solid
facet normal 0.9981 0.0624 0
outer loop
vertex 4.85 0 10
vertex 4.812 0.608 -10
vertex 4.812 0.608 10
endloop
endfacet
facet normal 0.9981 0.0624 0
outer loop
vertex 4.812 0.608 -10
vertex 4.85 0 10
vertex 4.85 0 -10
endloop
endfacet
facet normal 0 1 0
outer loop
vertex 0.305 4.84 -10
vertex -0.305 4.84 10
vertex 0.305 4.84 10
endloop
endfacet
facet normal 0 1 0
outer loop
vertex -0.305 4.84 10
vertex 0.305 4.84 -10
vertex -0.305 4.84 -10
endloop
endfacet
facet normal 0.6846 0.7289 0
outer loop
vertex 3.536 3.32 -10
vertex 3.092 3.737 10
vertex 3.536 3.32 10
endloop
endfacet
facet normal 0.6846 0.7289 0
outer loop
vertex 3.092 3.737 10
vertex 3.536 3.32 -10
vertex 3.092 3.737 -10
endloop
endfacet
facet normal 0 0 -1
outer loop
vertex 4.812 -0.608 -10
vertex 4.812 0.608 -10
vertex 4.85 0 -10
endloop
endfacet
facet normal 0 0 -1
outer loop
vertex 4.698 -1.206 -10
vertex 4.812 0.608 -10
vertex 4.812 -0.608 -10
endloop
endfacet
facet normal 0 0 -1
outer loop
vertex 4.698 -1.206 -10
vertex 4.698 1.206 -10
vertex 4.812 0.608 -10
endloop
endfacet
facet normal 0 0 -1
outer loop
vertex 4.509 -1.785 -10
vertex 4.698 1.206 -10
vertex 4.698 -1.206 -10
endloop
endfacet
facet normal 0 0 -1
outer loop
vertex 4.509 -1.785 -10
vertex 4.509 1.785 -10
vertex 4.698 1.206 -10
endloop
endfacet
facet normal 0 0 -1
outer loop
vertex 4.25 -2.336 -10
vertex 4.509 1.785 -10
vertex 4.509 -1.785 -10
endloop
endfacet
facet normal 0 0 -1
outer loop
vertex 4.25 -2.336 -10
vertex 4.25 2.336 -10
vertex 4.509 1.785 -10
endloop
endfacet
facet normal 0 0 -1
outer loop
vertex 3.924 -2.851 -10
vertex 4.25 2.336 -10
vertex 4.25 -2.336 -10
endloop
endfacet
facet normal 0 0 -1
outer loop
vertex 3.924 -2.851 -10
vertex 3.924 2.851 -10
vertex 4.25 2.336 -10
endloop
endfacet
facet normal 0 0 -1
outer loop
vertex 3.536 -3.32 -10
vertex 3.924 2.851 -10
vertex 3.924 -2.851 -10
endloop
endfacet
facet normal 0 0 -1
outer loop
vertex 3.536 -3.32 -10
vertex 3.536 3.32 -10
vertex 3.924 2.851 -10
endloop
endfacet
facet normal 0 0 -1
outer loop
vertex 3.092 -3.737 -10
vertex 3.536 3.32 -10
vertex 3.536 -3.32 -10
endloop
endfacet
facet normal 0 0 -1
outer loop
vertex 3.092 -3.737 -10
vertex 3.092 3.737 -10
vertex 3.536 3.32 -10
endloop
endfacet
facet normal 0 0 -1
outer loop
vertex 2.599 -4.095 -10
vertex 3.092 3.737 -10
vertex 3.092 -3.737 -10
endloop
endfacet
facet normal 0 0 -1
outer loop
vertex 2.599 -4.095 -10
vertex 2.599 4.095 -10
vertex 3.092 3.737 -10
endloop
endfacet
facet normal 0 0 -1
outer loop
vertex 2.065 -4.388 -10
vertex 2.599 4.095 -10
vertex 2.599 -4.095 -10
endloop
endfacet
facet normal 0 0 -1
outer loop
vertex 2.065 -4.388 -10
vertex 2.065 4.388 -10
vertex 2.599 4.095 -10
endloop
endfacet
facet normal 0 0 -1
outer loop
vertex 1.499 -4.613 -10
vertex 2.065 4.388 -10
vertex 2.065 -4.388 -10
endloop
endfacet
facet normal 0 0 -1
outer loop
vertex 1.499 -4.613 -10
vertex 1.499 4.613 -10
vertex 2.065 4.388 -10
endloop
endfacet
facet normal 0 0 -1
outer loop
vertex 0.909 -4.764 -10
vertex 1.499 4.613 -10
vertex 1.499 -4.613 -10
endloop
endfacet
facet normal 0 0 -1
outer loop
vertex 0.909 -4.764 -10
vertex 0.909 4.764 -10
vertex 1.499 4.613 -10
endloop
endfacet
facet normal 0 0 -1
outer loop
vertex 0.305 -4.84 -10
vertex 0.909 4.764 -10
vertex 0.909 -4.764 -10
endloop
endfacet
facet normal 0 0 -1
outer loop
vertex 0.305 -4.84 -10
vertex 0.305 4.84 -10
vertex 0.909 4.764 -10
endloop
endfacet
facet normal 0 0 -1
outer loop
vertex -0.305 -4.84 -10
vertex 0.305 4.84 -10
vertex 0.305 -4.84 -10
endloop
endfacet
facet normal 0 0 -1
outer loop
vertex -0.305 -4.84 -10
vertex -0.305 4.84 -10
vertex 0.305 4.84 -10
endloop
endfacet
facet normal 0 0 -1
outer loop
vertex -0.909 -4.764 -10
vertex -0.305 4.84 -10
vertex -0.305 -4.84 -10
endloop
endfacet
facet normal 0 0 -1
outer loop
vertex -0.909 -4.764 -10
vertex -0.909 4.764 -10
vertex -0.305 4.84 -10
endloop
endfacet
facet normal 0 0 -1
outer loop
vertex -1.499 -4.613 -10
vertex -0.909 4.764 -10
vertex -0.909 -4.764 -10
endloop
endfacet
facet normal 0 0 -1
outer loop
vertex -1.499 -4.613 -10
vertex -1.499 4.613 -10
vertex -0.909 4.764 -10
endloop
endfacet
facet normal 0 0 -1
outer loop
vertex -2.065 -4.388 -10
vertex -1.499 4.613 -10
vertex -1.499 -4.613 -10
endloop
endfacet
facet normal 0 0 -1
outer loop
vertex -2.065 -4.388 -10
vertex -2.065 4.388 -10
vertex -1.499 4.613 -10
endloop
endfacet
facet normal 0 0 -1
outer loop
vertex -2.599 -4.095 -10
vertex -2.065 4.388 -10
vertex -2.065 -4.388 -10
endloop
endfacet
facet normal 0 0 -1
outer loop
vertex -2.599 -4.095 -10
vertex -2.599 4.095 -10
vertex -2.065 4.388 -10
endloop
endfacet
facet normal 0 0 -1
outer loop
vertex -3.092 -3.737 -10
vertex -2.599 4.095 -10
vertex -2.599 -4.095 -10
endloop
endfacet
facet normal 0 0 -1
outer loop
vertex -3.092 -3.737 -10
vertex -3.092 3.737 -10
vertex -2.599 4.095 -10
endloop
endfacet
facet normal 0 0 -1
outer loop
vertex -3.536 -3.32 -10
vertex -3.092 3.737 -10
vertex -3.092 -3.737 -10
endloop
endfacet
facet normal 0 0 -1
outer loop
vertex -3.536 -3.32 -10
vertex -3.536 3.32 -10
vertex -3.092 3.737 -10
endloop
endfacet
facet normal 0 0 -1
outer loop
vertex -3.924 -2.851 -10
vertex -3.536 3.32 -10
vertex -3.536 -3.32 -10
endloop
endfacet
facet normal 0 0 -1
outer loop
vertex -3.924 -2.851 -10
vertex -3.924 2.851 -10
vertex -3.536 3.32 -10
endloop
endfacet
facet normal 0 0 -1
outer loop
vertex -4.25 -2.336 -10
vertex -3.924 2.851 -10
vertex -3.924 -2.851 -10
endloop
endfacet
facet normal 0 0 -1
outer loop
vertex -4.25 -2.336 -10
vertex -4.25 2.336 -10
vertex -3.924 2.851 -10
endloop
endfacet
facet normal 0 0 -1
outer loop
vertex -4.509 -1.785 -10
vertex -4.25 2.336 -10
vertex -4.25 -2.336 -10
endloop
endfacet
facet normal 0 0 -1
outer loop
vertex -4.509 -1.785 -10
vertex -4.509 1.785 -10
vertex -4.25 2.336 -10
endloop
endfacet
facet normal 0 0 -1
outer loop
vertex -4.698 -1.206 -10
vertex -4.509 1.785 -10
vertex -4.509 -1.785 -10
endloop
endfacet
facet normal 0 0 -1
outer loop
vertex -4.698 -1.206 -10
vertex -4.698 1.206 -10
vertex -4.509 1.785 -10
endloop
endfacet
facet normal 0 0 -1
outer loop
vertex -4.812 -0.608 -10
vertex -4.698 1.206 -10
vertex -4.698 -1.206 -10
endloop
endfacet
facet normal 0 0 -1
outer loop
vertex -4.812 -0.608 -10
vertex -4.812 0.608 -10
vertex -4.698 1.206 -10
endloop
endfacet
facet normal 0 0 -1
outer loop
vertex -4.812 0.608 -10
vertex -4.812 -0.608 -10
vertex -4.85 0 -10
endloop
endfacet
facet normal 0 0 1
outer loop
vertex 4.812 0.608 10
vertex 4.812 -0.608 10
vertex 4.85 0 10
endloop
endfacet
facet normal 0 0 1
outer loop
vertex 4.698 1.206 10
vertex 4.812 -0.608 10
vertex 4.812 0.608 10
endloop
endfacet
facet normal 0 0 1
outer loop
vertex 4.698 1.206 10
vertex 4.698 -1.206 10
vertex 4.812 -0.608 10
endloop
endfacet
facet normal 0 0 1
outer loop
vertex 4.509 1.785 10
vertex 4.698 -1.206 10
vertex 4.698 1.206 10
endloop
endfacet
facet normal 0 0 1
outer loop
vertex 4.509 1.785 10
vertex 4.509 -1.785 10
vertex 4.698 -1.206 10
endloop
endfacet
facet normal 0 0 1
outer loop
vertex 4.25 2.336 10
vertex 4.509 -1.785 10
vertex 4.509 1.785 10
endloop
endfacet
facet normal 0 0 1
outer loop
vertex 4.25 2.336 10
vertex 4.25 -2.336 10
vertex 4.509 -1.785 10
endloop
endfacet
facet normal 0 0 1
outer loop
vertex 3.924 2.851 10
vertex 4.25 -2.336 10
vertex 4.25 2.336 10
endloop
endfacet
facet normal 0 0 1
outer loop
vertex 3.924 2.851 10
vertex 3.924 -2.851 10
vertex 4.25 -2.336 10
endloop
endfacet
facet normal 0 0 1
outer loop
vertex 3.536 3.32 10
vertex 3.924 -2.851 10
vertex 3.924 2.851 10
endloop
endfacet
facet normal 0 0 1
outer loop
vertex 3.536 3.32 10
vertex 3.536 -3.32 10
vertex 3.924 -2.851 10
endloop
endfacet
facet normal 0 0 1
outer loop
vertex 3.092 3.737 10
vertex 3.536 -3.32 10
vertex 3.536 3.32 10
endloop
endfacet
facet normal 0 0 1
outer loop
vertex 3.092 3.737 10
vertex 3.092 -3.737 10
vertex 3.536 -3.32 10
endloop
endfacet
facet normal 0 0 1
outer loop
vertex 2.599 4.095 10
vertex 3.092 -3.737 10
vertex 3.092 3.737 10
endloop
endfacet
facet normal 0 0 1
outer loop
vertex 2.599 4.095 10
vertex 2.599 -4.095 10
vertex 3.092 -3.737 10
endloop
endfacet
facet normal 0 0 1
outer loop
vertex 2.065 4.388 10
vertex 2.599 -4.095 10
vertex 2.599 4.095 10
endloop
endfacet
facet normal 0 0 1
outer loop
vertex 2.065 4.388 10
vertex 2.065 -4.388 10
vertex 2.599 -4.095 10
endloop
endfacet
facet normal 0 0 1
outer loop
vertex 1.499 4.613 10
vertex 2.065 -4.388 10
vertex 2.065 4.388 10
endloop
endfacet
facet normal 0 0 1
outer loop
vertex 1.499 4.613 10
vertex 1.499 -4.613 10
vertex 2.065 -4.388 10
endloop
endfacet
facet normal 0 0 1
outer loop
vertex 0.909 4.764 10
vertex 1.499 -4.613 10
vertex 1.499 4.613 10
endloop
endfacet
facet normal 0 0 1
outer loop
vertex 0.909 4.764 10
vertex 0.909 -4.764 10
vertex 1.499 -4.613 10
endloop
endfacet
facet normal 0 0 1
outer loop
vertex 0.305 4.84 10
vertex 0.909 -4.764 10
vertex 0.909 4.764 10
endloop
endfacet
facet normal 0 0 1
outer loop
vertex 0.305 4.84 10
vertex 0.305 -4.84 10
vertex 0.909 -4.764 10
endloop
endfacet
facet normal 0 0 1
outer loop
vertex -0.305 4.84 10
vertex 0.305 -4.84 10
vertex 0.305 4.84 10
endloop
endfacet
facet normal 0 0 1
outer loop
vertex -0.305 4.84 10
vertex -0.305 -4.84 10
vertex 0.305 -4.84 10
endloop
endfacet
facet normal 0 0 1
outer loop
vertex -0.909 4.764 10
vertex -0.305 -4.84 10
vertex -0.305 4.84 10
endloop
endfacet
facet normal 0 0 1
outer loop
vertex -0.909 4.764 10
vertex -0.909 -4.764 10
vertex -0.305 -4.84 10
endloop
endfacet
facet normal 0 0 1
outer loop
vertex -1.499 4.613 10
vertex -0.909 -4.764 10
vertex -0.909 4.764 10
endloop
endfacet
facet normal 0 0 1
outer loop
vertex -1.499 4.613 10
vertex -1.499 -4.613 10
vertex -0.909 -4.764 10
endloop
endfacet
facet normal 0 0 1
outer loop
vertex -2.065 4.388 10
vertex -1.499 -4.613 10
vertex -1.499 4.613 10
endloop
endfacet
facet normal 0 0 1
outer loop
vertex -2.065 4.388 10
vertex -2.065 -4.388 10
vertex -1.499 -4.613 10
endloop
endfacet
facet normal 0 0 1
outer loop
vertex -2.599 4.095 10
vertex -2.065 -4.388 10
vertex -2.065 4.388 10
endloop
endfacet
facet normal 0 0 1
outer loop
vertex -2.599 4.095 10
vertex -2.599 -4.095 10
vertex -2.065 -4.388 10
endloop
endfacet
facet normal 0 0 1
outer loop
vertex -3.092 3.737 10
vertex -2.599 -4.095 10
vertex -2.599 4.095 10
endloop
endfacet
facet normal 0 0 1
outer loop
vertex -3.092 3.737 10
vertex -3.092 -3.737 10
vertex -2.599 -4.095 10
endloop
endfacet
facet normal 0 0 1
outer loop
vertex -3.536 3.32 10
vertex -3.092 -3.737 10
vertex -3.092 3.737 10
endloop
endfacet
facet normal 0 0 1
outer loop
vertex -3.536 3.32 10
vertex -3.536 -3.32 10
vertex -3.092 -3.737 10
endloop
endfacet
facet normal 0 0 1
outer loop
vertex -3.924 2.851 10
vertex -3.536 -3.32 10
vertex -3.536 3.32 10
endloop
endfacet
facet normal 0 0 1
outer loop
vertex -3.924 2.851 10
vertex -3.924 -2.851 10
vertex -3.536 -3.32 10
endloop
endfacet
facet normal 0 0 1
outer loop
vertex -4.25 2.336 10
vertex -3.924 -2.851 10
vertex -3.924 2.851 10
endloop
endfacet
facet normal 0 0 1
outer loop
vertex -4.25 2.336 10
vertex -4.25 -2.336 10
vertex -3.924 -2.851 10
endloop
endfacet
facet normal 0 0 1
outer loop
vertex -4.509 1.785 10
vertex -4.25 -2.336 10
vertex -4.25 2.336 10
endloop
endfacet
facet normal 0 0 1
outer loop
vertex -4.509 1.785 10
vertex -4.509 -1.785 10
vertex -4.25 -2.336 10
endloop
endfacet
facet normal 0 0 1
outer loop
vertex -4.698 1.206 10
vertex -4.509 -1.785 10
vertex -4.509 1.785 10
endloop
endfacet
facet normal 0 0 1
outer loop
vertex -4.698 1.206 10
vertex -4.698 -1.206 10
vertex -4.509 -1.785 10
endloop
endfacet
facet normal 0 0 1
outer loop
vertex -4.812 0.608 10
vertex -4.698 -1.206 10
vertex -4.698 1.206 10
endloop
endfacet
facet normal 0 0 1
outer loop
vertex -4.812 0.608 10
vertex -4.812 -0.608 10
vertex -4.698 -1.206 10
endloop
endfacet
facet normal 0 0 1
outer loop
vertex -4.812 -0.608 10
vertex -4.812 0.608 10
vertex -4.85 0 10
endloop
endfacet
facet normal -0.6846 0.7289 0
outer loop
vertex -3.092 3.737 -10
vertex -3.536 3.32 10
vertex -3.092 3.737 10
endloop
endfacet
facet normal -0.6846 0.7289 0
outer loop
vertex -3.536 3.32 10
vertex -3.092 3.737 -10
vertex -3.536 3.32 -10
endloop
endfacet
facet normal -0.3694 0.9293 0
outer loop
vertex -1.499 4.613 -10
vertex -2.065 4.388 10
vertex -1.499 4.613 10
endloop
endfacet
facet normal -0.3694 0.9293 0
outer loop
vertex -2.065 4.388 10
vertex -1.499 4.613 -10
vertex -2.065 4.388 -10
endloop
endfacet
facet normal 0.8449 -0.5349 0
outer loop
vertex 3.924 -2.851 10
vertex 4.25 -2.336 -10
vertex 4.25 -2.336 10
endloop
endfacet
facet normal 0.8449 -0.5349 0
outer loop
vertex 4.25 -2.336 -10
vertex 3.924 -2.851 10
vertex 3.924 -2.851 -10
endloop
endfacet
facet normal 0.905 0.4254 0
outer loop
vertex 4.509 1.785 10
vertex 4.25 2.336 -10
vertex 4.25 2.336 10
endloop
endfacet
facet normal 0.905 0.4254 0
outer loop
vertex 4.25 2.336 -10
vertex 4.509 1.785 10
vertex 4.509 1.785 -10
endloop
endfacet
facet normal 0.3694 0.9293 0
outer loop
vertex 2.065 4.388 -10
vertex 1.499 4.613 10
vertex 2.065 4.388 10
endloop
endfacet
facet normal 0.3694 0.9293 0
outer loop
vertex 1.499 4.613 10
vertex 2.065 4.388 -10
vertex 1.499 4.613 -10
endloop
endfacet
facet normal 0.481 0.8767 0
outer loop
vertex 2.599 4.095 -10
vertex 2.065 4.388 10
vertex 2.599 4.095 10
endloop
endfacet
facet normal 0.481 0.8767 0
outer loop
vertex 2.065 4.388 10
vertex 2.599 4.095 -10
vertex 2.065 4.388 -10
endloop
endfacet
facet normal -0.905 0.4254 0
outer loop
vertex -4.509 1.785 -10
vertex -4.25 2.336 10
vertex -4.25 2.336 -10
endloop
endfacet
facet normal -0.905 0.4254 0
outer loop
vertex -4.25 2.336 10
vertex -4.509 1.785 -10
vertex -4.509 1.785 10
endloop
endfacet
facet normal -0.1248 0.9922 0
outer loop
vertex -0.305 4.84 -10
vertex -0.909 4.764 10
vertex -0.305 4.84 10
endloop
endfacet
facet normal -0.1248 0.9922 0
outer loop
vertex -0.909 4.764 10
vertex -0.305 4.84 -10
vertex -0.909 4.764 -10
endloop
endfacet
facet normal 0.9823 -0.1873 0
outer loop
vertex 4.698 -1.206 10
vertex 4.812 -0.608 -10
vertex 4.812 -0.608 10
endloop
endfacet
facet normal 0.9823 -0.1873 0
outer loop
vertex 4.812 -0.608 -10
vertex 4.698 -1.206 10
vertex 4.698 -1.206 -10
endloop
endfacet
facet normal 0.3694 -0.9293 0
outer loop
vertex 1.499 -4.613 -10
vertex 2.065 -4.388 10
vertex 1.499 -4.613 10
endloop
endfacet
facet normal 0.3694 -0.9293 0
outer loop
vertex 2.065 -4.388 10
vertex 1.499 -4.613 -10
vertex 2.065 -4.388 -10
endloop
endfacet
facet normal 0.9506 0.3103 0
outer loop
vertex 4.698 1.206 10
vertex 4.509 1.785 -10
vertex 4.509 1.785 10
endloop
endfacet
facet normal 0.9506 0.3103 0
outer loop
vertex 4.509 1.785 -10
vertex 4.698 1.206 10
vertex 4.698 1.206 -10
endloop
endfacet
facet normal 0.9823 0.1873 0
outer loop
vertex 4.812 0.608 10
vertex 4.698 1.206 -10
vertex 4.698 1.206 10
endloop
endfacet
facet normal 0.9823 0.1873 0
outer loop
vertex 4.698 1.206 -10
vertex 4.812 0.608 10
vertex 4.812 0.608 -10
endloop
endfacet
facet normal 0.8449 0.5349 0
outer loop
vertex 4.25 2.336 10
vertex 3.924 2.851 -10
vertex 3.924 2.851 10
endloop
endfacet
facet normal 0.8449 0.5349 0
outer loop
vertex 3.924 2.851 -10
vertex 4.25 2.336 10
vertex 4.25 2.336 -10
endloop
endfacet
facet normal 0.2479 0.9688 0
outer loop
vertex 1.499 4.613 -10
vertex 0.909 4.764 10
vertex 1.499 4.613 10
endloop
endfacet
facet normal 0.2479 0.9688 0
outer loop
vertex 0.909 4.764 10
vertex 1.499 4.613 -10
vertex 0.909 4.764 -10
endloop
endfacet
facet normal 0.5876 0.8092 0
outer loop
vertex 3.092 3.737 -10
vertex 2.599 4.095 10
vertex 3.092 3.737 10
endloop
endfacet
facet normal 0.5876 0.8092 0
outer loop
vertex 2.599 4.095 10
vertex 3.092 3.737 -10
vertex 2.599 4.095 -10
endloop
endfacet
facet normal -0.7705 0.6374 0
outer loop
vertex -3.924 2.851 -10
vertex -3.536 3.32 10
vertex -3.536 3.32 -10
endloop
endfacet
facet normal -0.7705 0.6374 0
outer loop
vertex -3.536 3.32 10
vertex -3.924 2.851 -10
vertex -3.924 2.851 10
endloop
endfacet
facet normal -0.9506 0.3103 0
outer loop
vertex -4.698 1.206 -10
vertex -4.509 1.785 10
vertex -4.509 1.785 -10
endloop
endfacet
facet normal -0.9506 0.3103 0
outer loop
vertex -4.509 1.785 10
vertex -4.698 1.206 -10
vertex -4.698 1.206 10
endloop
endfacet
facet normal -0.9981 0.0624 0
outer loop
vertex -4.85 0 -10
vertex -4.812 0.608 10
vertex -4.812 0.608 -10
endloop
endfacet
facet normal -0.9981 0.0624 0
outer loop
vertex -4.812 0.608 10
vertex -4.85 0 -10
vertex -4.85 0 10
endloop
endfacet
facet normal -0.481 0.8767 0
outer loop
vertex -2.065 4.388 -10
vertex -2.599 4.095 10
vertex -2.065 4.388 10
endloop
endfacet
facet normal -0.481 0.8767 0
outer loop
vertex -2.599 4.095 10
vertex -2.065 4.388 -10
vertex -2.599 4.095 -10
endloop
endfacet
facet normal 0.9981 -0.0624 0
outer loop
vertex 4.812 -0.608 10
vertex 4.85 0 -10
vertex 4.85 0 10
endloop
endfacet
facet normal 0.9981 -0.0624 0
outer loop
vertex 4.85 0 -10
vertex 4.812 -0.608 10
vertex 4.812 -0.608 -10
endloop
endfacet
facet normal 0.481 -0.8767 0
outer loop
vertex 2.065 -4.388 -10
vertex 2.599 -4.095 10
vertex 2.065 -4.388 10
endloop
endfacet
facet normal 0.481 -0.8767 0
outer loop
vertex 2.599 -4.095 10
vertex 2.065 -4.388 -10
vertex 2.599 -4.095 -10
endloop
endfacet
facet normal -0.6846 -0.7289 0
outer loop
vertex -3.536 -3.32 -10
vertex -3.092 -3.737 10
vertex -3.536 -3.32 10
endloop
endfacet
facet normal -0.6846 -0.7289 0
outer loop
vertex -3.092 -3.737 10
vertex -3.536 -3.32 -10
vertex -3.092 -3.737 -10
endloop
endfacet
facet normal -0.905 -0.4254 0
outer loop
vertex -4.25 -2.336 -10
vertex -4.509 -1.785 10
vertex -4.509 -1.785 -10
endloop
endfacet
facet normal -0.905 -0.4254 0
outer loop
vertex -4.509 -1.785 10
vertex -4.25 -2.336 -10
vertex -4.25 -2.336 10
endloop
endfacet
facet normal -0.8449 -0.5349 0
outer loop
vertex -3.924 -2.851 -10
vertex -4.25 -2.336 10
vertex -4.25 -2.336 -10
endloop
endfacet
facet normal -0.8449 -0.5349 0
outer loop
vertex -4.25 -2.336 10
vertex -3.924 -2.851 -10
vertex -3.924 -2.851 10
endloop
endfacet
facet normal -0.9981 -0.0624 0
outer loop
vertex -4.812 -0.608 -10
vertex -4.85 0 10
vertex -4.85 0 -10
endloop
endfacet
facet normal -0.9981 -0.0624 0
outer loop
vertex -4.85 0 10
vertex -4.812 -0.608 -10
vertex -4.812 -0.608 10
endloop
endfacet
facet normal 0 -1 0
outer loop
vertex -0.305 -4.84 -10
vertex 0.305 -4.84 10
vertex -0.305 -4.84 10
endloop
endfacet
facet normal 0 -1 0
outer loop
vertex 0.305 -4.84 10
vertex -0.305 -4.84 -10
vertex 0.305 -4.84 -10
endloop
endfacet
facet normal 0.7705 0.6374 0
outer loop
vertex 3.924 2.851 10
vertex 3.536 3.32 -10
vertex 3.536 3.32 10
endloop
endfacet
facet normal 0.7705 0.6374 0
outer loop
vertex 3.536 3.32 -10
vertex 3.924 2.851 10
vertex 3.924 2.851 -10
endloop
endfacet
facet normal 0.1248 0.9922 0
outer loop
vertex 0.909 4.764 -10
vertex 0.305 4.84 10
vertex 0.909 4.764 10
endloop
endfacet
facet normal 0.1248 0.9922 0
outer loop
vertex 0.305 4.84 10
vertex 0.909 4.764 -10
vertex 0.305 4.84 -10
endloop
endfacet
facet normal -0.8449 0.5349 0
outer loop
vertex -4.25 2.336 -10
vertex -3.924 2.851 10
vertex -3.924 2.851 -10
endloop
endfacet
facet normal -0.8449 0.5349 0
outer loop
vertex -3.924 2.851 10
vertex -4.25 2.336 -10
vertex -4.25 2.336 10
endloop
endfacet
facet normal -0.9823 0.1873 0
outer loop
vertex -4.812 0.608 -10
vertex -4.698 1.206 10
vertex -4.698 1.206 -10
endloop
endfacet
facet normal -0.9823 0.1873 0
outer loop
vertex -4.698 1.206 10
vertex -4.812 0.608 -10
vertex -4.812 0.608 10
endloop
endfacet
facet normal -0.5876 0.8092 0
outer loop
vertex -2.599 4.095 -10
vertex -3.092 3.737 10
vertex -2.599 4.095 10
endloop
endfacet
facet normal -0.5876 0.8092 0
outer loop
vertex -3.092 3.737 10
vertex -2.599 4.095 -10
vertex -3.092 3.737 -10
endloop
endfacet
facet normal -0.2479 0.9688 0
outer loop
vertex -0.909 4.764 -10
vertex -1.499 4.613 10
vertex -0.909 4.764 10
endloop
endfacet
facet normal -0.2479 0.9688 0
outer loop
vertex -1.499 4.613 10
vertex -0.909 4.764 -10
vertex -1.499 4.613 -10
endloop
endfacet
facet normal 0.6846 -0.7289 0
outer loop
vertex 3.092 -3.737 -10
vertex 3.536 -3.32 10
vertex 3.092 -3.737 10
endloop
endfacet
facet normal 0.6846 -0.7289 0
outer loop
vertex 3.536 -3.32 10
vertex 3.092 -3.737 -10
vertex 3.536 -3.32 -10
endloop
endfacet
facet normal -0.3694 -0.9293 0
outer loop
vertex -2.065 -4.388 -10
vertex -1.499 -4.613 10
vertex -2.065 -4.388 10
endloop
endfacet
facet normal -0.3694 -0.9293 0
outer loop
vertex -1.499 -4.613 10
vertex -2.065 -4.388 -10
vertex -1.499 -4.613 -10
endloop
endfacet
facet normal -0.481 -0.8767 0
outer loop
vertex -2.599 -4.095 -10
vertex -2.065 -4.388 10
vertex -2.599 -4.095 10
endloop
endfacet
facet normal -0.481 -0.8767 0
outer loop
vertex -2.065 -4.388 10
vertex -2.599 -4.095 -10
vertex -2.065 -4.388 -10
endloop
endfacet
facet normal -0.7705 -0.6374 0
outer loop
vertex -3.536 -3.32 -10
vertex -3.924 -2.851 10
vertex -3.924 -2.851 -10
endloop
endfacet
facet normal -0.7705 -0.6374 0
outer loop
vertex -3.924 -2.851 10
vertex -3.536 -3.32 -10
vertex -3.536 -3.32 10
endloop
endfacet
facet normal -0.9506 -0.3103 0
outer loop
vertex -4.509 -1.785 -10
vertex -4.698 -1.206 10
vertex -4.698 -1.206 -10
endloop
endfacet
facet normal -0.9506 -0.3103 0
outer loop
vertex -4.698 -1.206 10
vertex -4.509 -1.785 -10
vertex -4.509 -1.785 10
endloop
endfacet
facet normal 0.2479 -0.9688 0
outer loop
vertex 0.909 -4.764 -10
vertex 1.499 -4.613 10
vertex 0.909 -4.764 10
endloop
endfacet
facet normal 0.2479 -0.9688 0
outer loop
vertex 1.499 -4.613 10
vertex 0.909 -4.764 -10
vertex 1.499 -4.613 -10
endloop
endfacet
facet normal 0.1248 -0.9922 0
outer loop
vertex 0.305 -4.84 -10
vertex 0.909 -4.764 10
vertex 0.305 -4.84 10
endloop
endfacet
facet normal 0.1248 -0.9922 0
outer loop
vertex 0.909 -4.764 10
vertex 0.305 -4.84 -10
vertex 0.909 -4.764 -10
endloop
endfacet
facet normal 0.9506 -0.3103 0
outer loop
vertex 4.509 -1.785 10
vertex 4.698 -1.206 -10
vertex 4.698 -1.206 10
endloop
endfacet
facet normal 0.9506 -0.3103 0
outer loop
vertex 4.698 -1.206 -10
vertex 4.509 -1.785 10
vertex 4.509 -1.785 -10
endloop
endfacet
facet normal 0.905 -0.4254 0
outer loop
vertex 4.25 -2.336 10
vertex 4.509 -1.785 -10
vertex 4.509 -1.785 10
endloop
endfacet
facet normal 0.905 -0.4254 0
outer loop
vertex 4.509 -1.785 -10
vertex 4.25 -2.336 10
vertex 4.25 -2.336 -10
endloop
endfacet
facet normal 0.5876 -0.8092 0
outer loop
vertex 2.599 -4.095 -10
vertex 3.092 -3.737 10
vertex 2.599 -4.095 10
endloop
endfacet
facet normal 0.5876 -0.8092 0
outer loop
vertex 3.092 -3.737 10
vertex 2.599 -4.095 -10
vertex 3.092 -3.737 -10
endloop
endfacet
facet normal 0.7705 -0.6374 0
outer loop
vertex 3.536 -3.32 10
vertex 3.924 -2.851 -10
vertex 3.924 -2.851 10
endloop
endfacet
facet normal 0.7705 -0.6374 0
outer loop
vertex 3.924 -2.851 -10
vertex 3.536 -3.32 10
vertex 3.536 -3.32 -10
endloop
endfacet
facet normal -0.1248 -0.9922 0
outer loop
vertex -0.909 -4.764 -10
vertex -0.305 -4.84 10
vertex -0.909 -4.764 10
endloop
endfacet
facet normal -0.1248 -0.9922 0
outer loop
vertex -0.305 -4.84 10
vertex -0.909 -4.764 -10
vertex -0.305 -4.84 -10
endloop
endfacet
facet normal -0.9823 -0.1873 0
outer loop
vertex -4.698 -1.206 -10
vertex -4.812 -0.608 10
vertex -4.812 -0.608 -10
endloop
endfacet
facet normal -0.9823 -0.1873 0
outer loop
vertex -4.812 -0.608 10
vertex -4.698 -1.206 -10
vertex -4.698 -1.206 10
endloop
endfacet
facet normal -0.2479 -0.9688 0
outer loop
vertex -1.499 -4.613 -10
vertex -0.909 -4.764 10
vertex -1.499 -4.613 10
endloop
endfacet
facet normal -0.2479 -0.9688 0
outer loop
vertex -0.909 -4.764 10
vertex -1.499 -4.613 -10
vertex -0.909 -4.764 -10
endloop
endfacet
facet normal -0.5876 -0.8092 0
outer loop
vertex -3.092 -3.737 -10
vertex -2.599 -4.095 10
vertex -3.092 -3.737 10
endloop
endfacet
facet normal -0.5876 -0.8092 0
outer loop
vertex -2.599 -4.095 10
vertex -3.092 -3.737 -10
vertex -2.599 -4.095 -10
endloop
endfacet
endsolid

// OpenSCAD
$fn = 50;


difference() {
	union() {
		translate(v = [0, 0, -10.0000000000]) {
			cylinder(h = 20, r = 4.8500000000);
		}
	}
	union() {
		translate(v = [0, 0, -100.0000000000]) {
			cylinder(h = 200, r = 0);
		}
	}
}
